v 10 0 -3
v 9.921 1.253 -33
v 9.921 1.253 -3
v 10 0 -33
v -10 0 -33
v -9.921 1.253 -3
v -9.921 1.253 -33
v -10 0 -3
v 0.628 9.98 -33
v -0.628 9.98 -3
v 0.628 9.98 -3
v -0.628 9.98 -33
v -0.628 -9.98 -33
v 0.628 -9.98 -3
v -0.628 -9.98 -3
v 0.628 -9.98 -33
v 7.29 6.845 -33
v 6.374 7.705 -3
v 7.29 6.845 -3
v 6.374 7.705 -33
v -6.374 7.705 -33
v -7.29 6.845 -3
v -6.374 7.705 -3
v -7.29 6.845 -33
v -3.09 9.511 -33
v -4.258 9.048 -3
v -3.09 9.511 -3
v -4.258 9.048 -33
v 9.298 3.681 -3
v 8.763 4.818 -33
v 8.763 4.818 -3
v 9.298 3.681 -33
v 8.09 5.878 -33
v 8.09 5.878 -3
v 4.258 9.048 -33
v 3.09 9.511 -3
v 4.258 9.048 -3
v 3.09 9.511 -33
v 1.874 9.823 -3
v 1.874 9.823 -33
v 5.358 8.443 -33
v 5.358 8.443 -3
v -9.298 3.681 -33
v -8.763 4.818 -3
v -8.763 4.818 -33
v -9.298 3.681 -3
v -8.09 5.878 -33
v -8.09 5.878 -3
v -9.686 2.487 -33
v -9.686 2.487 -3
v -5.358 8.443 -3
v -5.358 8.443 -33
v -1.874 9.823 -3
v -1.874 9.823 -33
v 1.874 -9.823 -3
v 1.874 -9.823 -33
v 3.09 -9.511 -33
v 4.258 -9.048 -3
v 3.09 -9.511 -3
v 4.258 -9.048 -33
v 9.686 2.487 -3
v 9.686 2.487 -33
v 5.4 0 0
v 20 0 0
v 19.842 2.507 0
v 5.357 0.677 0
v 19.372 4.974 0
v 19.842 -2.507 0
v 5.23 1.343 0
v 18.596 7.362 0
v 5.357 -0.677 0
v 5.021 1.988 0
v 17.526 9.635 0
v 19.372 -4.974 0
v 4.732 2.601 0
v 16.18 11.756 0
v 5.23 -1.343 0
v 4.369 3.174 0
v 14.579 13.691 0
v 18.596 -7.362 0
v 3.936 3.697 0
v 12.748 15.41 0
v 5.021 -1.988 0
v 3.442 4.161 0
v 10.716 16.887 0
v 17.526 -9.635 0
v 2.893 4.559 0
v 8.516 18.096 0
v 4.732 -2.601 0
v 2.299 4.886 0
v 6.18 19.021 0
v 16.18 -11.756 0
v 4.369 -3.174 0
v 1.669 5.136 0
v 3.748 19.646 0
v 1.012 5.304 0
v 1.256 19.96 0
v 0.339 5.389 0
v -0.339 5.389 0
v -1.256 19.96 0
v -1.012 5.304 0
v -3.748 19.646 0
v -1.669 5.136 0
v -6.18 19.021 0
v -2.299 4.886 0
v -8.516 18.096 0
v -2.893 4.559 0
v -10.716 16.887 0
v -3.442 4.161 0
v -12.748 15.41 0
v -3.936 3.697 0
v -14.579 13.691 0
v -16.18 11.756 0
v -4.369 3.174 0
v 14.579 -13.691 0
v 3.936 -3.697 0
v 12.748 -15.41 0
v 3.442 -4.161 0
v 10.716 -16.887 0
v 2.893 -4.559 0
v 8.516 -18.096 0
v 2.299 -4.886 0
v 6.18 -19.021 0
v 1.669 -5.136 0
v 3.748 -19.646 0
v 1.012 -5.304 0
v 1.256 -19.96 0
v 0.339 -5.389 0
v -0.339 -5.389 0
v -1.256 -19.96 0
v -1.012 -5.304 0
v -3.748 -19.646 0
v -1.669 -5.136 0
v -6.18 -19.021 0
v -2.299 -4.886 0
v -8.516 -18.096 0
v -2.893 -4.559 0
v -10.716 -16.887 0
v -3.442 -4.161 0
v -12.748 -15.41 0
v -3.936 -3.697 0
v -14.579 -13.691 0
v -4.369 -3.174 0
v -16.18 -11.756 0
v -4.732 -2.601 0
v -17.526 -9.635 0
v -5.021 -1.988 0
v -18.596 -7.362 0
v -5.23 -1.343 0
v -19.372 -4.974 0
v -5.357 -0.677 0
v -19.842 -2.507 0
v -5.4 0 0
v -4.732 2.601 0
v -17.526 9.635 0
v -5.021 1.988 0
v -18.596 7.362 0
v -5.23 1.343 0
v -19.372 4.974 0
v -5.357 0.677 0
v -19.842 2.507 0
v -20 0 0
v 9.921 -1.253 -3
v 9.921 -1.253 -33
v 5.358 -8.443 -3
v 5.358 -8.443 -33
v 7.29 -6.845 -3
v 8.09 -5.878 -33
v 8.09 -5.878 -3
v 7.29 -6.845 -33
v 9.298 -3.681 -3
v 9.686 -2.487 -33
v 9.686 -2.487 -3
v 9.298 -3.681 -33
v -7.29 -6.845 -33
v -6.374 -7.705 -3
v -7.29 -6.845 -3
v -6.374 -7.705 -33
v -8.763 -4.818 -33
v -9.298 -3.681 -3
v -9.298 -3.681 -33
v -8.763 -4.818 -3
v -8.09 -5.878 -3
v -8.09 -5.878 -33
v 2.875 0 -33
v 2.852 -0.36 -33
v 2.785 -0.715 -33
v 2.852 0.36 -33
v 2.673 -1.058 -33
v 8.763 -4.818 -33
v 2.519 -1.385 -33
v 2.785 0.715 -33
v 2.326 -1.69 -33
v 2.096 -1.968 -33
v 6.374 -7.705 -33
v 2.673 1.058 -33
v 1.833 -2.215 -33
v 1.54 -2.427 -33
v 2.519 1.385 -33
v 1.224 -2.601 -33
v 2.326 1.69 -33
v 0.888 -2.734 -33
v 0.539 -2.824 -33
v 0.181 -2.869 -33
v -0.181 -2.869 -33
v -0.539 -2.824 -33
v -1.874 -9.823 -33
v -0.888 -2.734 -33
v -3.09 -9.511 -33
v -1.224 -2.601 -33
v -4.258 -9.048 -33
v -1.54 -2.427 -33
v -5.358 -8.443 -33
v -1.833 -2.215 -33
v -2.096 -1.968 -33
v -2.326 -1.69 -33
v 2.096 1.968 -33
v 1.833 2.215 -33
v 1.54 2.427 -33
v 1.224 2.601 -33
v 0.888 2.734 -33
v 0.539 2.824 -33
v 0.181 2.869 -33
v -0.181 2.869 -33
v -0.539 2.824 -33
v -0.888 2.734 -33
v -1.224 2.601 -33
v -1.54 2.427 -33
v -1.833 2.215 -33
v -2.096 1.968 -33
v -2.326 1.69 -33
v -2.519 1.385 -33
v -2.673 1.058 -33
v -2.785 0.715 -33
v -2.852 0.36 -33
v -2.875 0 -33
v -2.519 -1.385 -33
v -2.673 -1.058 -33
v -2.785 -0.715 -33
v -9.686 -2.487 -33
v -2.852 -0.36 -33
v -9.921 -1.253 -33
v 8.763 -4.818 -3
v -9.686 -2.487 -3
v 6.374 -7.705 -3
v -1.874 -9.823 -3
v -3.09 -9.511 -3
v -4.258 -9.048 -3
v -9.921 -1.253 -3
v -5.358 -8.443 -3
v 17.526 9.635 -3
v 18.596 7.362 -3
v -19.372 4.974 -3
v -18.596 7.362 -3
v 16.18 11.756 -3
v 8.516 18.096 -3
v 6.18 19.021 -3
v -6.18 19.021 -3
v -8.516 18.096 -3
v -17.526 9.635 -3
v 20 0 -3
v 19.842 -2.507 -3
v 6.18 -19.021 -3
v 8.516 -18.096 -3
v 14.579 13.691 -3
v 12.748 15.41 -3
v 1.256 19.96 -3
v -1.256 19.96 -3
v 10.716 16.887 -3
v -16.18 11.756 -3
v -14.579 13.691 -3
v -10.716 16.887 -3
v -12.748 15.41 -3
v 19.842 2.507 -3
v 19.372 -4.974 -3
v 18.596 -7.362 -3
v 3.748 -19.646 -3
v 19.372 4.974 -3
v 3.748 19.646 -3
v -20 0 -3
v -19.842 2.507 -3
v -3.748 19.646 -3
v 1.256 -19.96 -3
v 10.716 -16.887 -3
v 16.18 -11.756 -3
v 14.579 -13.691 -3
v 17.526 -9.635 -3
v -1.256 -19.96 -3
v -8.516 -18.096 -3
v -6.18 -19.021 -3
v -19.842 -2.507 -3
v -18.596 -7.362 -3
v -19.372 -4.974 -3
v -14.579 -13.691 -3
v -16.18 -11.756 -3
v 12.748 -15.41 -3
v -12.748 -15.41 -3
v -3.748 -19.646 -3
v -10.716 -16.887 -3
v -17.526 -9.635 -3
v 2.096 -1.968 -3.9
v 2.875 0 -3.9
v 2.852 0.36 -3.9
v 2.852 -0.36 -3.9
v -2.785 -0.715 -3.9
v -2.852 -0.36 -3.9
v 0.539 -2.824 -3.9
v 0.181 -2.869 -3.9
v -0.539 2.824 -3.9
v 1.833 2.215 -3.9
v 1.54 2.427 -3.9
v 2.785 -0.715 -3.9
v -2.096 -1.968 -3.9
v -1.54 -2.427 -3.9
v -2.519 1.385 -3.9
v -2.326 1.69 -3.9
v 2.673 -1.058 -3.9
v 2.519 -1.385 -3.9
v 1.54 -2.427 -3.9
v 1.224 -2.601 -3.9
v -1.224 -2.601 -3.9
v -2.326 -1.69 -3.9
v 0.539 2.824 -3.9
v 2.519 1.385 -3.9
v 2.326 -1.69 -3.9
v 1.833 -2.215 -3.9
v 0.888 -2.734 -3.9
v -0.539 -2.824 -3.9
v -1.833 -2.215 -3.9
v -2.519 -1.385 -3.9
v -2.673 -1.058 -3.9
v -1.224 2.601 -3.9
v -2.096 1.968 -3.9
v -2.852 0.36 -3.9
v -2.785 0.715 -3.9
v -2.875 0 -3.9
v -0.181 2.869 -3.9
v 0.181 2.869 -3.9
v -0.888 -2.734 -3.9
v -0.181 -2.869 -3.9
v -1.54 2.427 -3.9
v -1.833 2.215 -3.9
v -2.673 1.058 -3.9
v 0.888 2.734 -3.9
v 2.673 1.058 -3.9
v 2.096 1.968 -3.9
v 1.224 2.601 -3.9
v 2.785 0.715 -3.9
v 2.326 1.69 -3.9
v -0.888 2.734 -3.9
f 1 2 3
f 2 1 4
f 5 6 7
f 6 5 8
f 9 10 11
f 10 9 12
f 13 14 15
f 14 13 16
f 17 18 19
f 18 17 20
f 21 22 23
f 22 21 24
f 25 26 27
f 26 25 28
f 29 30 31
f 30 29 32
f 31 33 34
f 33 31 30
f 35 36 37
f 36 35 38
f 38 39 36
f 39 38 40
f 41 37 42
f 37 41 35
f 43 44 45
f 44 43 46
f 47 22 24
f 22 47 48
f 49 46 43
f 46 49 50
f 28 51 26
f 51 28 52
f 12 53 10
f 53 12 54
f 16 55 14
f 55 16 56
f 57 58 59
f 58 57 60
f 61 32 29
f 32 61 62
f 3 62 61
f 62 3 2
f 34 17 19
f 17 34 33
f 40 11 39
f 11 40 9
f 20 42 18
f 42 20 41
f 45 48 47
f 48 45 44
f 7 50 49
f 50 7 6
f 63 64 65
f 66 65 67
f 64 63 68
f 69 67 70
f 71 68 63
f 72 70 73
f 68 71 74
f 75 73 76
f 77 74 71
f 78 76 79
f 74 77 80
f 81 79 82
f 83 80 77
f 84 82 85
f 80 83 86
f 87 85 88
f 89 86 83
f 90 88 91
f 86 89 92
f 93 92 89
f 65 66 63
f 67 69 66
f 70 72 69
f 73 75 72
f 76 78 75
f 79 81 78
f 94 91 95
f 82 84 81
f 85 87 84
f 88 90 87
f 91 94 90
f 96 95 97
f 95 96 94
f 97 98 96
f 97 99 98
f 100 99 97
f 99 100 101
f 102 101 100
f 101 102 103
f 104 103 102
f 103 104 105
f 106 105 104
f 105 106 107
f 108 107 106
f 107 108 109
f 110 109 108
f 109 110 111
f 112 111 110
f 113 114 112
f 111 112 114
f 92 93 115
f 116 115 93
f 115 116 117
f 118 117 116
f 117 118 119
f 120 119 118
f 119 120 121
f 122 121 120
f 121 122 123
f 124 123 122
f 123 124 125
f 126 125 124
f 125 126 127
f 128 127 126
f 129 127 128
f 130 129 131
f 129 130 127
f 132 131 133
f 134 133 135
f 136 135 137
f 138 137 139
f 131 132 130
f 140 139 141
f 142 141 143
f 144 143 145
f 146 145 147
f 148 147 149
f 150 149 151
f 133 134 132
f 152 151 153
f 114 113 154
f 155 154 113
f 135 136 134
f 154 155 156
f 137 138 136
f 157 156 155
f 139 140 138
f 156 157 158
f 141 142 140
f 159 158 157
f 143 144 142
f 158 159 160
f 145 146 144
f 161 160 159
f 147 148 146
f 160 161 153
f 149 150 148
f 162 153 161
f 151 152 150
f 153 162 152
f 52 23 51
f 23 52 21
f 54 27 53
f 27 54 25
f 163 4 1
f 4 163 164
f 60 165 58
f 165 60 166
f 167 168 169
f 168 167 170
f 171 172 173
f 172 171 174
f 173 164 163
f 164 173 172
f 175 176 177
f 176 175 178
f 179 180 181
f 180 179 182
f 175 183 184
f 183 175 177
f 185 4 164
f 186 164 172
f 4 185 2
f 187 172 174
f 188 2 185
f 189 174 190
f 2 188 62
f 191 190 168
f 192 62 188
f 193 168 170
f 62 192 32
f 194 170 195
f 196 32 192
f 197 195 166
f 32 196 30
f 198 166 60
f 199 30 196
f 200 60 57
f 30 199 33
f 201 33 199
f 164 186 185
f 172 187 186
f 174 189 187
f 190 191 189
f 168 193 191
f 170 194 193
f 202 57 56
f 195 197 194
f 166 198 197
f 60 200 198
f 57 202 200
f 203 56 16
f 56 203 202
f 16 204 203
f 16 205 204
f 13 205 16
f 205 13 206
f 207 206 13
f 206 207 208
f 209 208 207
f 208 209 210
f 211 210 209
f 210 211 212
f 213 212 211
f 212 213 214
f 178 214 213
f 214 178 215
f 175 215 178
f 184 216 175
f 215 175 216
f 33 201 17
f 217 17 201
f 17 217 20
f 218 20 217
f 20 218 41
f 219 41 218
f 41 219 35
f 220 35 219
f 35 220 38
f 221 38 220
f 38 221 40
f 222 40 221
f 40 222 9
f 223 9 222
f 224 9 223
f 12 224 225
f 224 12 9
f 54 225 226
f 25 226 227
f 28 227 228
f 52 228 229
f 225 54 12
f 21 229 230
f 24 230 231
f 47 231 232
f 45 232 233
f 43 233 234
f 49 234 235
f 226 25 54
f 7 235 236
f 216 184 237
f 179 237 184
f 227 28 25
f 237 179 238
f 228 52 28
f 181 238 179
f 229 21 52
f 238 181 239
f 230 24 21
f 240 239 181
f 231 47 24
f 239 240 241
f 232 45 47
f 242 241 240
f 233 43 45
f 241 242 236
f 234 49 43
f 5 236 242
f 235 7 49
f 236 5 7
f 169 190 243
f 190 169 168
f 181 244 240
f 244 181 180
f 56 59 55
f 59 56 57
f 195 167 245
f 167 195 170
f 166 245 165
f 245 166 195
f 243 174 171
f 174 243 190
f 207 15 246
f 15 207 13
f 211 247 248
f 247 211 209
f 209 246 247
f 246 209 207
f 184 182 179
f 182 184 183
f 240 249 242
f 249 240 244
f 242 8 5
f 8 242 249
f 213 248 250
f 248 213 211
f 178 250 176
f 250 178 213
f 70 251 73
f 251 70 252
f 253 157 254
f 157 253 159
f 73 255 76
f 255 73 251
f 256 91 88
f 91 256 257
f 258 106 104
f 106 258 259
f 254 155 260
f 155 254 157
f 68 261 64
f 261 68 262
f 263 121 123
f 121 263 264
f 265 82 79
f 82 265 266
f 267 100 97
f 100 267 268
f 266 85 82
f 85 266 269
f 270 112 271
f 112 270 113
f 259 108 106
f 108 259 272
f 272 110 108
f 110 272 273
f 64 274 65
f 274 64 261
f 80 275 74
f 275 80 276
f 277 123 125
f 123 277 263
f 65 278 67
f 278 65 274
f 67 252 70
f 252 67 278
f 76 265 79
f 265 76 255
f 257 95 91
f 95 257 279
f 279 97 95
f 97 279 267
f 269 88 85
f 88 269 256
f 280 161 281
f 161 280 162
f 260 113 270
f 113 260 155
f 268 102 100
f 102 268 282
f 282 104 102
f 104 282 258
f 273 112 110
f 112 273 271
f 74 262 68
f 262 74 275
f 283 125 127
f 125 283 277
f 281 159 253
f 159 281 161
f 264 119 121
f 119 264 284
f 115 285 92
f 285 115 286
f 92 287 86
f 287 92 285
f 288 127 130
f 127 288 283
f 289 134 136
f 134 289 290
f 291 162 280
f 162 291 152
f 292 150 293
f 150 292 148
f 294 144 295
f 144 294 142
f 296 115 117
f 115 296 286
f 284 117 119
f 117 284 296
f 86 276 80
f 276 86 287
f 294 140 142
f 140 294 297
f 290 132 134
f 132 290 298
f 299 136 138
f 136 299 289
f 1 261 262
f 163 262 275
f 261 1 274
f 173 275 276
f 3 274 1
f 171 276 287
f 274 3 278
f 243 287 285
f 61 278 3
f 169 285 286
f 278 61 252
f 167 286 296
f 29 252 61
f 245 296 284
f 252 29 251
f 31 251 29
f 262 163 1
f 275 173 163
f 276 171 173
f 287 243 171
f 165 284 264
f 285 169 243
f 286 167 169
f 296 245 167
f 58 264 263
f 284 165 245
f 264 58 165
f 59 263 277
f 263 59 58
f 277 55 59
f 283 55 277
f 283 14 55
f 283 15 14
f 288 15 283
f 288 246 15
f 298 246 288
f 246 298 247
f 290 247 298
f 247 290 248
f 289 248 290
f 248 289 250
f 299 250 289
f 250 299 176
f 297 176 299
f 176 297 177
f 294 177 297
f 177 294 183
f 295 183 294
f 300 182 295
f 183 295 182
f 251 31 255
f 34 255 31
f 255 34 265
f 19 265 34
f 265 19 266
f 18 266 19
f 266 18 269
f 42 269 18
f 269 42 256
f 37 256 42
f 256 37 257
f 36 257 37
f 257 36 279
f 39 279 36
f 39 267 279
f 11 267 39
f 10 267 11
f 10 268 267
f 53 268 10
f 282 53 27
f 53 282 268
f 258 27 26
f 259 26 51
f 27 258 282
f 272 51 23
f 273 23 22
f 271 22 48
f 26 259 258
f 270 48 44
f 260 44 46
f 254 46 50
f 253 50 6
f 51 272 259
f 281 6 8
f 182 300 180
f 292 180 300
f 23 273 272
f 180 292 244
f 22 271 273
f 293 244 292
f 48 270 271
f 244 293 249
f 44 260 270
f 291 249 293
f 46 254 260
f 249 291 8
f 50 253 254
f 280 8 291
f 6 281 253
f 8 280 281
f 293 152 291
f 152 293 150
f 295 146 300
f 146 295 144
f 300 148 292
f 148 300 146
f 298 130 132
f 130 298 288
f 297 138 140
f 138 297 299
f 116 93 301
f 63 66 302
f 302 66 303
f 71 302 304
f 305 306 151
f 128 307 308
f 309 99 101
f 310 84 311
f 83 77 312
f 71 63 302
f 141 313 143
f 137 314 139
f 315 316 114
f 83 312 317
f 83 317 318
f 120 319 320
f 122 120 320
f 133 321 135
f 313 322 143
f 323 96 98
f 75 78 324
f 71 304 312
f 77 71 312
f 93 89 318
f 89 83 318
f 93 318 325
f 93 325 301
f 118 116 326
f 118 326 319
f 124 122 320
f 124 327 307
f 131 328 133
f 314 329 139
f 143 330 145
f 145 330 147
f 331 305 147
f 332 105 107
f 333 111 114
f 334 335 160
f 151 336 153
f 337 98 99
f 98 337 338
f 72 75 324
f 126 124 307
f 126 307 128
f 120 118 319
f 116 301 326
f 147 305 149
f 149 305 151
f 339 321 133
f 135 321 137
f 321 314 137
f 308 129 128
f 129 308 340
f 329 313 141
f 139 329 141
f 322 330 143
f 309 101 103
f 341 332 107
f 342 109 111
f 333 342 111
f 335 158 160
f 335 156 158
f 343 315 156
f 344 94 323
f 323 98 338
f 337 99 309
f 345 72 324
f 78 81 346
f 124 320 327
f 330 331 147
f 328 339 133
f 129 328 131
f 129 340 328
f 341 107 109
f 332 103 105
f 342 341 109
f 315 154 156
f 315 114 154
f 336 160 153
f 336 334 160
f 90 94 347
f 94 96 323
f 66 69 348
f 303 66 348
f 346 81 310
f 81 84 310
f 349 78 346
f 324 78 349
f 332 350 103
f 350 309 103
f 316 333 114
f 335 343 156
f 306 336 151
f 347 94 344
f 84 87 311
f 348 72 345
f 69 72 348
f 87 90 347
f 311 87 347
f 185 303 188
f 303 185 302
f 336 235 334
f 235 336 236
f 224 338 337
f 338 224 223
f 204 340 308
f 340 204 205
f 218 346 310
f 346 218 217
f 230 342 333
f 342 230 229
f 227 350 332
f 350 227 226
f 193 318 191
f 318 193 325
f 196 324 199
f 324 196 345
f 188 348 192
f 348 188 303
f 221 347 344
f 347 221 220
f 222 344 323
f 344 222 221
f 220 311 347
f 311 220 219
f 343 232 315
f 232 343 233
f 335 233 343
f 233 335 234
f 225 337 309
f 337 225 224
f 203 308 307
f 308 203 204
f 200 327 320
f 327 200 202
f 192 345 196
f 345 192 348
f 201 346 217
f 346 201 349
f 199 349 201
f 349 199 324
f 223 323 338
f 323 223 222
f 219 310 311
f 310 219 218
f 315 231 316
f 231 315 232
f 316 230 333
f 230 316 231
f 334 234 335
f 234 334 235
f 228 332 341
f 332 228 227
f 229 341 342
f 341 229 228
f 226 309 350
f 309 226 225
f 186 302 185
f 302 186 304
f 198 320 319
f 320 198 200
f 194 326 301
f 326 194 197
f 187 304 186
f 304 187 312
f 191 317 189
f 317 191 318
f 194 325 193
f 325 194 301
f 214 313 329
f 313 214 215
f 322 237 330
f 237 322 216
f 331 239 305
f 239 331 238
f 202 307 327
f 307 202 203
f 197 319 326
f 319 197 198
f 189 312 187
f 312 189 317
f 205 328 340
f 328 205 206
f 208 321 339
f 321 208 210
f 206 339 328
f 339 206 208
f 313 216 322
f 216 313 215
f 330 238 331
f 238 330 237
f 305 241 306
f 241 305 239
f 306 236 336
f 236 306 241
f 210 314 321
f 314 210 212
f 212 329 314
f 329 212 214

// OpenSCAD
$fn = 50;


difference() {
	union() {
		translate(v = [0, 0, -33.0000000000]) {
			cylinder(h = 33, r = 10.0000000000);
		}
		translate(v = [0, 0, -3.0000000000]) {
			cylinder(h = 3, r = 20.0000000000);
		}
	}
	union() {
		translate(v = [0, 0, 0]) {
			rotate(a = [0, 0, 0]) {
				difference() {
					union() {
						#translate(v = [0, 0, -33.0000000000]) {
							cylinder(h = 33, r = 2.6000000000);
						}
						#translate(v = [0, 0, -3.9000000000]) {
							cylinder(h = 3.9000000000, r = 10.0000000000, r1 = 2.8750000000, r2 = 5.4000000000);
						}
						#translate(v = [0, 0, -33.0000000000]) {
							cylinder(h = 33, r = 2.8750000000);
						}
						#translate(v = [0, 0, -33.0000000000]) {
							cylinder(h = 33, r = 2.6000000000);
						}
					}
					union();
				}
			}
		}
	}
}
